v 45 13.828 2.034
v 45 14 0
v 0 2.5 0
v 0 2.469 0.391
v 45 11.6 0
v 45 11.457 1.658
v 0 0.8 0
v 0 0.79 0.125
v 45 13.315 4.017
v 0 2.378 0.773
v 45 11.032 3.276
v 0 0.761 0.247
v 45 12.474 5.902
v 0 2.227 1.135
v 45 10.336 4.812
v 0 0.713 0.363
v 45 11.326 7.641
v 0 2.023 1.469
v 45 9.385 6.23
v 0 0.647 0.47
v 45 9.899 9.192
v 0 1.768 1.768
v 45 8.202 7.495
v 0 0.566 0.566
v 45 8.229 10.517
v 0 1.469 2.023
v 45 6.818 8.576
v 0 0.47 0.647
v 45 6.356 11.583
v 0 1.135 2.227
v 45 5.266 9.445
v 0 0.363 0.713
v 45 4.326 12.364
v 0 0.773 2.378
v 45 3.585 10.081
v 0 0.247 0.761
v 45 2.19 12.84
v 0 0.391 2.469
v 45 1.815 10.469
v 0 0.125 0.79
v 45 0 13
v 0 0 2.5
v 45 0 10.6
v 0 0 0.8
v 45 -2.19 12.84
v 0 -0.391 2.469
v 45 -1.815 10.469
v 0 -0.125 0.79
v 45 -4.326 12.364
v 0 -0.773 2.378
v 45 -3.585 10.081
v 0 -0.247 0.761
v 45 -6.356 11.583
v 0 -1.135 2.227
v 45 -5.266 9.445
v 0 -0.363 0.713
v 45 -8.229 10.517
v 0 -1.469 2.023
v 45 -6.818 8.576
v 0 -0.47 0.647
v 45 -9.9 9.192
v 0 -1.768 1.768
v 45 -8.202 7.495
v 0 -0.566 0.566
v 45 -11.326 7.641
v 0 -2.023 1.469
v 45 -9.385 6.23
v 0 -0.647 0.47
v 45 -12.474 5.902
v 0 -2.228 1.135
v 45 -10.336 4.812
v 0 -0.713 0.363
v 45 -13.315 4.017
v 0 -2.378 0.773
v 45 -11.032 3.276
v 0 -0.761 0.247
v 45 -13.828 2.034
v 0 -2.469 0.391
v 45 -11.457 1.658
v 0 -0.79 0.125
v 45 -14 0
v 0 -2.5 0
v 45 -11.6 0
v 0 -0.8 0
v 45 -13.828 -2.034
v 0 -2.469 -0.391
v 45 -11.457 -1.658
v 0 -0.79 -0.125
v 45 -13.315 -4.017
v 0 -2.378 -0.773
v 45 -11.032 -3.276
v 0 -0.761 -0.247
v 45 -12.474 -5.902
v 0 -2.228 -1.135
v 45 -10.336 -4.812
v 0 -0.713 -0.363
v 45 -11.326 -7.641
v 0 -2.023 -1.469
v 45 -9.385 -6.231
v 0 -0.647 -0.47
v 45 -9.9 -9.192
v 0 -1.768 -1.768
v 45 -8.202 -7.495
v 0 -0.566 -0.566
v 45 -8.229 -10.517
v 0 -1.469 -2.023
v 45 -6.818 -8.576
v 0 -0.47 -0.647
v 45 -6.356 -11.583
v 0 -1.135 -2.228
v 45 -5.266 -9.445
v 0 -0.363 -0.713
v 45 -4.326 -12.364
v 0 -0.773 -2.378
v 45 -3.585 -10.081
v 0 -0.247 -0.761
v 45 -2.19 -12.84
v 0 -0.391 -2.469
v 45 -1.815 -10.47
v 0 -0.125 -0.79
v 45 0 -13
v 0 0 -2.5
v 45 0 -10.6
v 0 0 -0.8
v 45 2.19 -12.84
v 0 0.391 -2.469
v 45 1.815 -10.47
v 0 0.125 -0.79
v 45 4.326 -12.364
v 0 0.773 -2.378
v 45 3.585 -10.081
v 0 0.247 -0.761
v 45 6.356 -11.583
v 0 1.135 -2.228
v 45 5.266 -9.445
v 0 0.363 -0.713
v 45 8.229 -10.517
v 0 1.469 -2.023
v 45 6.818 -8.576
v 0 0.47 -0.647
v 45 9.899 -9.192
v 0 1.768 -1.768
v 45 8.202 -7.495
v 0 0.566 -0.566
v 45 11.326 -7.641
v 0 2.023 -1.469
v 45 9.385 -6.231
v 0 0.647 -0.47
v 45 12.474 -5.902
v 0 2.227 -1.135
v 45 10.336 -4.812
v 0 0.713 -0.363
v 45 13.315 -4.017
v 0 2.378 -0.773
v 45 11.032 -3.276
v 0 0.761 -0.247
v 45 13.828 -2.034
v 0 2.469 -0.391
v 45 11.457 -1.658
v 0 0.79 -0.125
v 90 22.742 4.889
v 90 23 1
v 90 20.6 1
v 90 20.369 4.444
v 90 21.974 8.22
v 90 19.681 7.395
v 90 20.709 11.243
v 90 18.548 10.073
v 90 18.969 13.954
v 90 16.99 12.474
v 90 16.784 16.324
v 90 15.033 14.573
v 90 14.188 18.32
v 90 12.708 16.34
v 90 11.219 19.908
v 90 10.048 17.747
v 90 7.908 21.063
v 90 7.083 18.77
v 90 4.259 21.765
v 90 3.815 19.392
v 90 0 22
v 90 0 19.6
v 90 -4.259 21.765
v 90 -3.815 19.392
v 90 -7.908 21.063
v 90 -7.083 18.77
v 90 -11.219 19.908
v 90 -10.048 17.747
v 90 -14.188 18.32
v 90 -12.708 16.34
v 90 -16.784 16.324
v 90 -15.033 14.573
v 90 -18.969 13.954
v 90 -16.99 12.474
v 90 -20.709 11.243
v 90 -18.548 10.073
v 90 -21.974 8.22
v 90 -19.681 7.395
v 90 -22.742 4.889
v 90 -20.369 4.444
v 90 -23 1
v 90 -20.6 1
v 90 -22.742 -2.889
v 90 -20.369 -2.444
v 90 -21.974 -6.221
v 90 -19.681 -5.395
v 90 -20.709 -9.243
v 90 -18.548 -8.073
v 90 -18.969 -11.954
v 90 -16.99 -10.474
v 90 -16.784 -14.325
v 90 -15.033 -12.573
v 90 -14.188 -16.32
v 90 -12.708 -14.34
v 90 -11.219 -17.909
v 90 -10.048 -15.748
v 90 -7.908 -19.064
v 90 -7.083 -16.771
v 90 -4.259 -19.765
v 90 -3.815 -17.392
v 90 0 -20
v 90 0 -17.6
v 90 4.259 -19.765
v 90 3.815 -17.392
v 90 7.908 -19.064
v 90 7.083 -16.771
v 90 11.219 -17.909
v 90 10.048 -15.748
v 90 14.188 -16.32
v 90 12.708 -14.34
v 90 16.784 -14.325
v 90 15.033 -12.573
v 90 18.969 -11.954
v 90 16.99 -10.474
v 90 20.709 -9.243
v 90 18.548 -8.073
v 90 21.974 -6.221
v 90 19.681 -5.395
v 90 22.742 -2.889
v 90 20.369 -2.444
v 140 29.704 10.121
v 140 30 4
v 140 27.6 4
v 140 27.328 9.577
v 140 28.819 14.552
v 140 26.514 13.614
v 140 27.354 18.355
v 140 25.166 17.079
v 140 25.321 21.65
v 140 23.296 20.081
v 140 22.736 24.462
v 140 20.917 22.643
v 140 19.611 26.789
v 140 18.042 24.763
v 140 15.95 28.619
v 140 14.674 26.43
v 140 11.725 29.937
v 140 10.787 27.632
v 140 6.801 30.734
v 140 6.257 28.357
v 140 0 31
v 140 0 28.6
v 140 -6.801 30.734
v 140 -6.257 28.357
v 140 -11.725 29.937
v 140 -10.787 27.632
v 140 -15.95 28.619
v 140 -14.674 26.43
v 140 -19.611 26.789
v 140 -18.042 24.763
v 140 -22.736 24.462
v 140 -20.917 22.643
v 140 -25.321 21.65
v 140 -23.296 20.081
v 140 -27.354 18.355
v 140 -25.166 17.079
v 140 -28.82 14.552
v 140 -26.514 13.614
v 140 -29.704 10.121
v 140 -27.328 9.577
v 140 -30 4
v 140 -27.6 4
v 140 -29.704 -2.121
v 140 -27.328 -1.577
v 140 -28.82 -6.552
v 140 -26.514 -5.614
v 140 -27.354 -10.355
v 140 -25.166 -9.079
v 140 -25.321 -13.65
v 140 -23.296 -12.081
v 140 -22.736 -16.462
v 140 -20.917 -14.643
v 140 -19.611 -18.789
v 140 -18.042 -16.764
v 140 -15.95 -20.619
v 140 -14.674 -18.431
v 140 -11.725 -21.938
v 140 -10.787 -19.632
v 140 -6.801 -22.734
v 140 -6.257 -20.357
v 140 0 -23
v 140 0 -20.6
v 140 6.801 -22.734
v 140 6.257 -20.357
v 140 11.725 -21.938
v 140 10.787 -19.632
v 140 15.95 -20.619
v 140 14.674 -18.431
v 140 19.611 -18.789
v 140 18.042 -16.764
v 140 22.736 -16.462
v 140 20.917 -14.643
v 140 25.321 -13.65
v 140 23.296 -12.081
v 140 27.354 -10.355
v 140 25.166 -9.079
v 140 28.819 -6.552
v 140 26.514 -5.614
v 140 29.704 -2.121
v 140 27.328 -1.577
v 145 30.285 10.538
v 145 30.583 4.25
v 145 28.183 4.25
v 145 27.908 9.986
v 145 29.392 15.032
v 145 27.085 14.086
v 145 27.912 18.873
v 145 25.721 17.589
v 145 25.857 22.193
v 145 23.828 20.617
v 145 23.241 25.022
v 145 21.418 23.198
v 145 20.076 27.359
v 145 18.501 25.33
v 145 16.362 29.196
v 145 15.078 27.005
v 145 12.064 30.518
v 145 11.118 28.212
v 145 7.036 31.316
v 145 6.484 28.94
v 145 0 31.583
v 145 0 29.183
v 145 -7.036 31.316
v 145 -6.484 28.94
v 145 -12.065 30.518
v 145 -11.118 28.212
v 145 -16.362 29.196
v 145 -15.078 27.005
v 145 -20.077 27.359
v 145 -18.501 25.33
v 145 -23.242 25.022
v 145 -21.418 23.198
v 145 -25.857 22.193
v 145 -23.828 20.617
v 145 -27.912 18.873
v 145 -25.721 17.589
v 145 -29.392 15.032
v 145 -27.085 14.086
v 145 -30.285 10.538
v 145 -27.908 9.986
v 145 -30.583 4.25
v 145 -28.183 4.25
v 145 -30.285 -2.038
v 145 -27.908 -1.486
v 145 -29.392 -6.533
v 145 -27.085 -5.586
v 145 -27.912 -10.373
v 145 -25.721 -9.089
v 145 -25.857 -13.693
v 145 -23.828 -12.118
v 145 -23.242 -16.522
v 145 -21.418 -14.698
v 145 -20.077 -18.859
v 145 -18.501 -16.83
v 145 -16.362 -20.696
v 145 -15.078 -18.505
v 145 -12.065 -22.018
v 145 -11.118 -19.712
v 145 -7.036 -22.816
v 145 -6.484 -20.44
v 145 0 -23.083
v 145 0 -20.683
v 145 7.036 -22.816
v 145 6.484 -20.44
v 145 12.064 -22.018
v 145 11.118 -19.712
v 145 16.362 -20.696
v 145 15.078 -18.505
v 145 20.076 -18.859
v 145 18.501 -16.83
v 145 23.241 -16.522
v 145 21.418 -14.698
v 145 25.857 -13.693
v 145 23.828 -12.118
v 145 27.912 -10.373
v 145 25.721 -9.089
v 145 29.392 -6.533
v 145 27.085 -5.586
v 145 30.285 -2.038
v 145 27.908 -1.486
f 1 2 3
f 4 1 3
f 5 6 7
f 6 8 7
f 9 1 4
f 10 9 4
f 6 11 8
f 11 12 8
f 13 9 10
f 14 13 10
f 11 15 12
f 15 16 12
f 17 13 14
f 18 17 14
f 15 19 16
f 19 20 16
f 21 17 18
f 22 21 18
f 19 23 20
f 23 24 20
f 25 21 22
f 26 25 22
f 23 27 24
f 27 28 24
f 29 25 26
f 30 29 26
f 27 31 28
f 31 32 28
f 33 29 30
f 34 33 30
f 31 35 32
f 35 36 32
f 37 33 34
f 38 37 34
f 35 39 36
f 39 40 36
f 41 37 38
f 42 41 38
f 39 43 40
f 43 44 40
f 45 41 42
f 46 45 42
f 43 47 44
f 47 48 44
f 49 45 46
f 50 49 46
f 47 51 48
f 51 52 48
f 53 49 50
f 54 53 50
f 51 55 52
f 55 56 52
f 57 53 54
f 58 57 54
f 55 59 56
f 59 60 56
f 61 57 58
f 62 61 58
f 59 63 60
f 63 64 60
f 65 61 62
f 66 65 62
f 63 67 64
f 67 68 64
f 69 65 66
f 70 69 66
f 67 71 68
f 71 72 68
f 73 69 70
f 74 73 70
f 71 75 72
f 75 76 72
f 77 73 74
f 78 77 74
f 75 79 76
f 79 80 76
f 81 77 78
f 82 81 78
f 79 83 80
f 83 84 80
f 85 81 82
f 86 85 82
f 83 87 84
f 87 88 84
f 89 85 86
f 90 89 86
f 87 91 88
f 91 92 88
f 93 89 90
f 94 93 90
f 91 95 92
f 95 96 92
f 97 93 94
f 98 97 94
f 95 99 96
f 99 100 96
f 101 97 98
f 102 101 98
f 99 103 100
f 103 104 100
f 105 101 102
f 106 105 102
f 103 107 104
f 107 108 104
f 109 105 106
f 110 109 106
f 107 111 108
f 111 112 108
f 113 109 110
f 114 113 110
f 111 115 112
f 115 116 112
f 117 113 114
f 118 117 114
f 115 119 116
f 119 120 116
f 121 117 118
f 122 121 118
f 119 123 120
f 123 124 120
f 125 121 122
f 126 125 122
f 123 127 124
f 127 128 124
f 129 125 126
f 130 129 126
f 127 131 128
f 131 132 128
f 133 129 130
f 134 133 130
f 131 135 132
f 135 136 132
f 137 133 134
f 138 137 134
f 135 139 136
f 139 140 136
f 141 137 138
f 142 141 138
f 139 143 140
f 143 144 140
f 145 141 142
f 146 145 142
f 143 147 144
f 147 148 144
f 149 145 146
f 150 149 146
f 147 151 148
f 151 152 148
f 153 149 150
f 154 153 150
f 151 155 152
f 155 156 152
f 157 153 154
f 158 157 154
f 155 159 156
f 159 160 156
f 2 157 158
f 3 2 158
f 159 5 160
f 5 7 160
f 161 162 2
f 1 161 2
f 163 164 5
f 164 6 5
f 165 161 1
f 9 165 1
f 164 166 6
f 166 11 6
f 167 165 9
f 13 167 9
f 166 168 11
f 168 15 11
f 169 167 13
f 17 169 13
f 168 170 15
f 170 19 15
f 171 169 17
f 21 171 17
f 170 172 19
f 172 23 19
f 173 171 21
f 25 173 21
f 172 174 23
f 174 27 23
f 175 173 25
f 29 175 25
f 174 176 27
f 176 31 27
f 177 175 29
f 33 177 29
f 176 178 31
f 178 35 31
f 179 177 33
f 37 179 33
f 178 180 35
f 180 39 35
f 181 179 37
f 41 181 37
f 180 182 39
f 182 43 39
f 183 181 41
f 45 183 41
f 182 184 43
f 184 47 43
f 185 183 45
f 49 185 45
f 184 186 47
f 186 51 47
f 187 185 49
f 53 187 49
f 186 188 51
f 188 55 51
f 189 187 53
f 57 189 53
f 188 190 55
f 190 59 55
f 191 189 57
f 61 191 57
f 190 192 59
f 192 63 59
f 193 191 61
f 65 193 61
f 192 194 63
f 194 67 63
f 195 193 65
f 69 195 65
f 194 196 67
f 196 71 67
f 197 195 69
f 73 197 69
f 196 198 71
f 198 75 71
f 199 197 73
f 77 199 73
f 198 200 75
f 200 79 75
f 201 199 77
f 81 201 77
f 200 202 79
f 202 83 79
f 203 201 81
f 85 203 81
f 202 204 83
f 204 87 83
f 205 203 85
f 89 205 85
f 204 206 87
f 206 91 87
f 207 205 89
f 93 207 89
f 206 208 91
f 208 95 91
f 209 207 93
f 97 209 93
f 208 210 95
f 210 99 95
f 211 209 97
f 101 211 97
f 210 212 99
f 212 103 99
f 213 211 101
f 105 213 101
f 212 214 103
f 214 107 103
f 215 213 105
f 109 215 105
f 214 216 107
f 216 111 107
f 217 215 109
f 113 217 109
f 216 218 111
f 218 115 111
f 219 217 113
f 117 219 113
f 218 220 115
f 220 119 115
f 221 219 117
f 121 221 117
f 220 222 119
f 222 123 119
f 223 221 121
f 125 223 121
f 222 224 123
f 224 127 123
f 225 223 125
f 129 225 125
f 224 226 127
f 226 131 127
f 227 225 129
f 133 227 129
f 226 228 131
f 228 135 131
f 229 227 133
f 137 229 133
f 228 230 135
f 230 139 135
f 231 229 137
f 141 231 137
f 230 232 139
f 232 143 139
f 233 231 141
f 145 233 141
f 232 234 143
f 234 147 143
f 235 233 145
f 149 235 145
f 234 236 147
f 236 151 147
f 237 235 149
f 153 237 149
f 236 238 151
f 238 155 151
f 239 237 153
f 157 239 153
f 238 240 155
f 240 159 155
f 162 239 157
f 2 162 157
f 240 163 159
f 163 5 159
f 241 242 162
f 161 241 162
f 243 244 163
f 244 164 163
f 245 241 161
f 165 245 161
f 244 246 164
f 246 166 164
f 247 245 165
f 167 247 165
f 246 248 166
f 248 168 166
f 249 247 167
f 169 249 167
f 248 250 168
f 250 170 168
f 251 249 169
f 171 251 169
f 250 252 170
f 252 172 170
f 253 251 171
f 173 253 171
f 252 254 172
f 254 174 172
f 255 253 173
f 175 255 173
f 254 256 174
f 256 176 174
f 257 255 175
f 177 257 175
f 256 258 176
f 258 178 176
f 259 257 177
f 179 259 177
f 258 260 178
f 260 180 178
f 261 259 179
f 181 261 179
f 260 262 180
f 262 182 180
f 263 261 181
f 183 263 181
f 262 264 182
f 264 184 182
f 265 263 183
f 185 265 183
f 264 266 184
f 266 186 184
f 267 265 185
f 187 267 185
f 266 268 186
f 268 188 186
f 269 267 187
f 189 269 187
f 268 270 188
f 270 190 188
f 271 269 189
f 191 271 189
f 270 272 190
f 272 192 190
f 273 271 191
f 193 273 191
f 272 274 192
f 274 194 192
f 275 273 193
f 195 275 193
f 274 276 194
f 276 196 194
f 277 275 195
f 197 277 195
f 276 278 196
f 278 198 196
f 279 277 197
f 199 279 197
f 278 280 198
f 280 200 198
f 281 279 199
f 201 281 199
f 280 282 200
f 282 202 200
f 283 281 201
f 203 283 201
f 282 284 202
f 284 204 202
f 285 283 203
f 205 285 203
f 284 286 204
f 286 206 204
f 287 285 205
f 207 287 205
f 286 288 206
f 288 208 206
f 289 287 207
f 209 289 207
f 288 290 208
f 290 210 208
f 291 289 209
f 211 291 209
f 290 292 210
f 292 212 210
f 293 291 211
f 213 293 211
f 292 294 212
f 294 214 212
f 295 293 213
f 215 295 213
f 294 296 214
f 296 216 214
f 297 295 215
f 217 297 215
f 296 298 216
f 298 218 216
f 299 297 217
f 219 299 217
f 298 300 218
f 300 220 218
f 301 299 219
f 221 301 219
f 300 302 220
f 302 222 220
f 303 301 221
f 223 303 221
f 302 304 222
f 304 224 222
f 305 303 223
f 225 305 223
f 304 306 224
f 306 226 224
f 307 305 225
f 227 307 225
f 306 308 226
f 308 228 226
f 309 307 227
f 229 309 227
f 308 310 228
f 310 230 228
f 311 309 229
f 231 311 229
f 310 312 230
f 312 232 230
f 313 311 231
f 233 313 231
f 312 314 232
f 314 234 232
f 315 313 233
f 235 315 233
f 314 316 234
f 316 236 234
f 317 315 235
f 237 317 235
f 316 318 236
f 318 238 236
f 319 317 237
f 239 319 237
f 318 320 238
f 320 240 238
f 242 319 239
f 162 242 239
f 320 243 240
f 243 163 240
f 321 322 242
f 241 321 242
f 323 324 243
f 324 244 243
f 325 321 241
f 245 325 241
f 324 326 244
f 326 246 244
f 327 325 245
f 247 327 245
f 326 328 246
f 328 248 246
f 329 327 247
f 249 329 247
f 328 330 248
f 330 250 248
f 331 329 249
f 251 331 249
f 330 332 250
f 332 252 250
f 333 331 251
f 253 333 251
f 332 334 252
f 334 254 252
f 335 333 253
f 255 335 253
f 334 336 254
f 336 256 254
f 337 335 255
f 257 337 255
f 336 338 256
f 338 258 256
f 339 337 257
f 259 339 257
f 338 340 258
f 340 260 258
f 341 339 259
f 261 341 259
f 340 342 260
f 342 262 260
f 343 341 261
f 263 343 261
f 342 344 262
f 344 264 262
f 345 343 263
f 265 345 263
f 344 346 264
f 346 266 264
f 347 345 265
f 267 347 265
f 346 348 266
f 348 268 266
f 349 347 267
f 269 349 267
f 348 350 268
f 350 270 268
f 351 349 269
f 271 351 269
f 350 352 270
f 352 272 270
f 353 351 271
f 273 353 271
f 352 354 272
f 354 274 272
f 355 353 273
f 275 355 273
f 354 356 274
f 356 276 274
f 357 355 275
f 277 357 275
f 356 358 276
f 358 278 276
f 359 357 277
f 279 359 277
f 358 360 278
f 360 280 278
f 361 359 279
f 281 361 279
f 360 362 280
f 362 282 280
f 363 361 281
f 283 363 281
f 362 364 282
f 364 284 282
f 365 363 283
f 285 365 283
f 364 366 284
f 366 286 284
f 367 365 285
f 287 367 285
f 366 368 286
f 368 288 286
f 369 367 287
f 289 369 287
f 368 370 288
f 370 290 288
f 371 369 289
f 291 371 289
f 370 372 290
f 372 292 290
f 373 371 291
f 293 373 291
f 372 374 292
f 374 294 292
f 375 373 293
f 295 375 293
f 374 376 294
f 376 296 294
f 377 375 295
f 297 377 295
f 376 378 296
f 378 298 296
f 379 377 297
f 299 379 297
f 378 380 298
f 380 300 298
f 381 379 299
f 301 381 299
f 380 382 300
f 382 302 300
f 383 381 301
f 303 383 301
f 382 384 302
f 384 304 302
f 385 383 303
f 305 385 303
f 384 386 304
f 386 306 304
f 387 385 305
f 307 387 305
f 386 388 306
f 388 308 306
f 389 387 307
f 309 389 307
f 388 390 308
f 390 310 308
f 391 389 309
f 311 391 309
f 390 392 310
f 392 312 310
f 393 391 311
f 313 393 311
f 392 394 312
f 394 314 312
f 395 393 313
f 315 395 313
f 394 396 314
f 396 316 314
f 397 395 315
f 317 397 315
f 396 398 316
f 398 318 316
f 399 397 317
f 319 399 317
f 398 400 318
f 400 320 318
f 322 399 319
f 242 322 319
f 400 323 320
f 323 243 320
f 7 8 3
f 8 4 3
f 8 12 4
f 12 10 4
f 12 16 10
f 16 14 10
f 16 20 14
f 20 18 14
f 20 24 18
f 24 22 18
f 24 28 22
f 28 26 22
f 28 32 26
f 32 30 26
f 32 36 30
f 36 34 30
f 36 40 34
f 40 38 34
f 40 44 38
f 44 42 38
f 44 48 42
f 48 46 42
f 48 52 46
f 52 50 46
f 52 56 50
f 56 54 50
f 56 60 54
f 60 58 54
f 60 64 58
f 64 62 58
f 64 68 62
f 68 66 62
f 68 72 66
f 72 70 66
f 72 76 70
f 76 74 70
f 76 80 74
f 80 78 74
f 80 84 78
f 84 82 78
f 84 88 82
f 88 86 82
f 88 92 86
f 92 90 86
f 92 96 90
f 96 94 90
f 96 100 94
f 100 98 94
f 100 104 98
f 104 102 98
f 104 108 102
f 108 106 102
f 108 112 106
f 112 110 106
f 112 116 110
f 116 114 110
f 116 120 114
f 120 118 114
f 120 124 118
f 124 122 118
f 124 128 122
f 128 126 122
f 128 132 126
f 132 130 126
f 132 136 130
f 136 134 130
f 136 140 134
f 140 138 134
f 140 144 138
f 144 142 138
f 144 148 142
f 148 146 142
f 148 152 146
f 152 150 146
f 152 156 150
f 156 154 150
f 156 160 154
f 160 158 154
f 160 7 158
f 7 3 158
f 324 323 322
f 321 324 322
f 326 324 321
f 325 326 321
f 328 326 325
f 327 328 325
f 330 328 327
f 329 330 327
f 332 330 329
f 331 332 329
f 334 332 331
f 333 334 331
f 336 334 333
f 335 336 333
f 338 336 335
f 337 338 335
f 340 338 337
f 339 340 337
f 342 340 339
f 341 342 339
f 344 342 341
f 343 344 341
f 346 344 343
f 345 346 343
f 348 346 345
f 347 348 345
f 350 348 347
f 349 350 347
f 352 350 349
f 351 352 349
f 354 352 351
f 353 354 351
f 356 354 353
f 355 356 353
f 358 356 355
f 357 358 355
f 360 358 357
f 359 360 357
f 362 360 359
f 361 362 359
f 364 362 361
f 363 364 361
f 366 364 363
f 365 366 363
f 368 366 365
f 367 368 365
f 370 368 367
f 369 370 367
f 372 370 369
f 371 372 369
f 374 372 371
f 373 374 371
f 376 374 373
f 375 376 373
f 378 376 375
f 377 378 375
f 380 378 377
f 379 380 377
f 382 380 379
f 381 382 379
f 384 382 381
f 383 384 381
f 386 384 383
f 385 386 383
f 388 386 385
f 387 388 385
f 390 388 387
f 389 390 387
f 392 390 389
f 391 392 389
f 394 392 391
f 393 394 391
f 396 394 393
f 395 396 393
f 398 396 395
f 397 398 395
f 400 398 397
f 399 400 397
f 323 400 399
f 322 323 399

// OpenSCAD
polyhedron(points=[[0.0, 2.5, 0.0], [0.0, 2.469221, 0.391086], [0.0, 2.377641, 0.772542], [0.0, 2.227516, 1.134976], [0.0, 2.022542, 1.469463], [0.0, 1.767767, 1.767767], [0.0, 1.469463, 2.022542], [0.0, 1.134976, 2.227516], [0.0, 0.772542, 2.377641], [0.0, 0.391086, 2.469221], [0.0, 0.0, 2.5], [0.0, -0.391086, 2.469221], [0.0, -0.772542, 2.377641], [0.0, -1.134976, 2.227516], [0.0, -1.469463, 2.022542], [0.0, -1.767767, 1.767767], [0.0, -2.022542, 1.469463], [0.0, -2.227516, 1.134976], [0.0, -2.377641, 0.772542], [0.0, -2.469221, 0.391086], [0.0, -2.5, 0.0], [0.0, -2.469221, -0.391086], [0.0, -2.377641, -0.772542], [0.0, -2.227516, -1.134976], [0.0, -2.022542, -1.469463], [0.0, -1.767767, -1.767767], [0.0, -1.469463, -2.022542], [0.0, -1.134976, -2.227516], [0.0, -0.772542, -2.377641], [0.0, -0.391086, -2.469221], [0.0, -0.0, -2.5], [0.0, 0.391086, -2.469221], [0.0, 0.772542, -2.377641], [0.0, 1.134976, -2.227516], [0.0, 1.469463, -2.022542], [0.0, 1.767767, -1.767767], [0.0, 2.022542, -1.469463], [0.0, 2.227516, -1.134976], [0.0, 2.377641, -0.772542], [0.0, 2.469221, -0.391086], [0.0, 0.8, 0.0], [0.0, 0.790151, 0.125148], [0.0, 0.760845, 0.247214], [0.0, 0.712805, 0.363192], [0.0, 0.647214, 0.470228], [0.0, 0.565685, 0.565685], [0.0, 0.470228, 0.647214], [0.0, 0.363192, 0.712805], [0.0, 0.247214, 0.760845], [0.0, 0.125148, 0.790151], [0.0, 0.0, 0.8], [0.0, -0.125148, 0.790151], [0.0, -0.247214, 0.760845], [0.0, -0.363192, 0.712805], [0.0, -0.470228, 0.647214], [0.0, -0.565685, 0.565685], [0.0, -0.647214, 0.470228], [0.0, -0.712805, 0.363192], [0.0, -0.760845, 0.247214], [0.0, -0.790151, 0.125148], [0.0, -0.8, 0.0], [0.0, -0.790151, -0.125148], [0.0, -0.760845, -0.247214], [0.0, -0.712805, -0.363192], [0.0, -0.647214, -0.470228], [0.0, -0.565685, -0.565685], [0.0, -0.470228, -0.647214], [0.0, -0.363192, -0.712805], [0.0, -0.247214, -0.760845], [0.0, -0.125148, -0.790151], [0.0, -0.0, -0.8], [0.0, 0.125148, -0.790151], [0.0, 0.247214, -0.760845], [0.0, 0.363192, -0.712805], [0.0, 0.470228, -0.647214], [0.0, 0.565685, -0.565685], [0.0, 0.647214, -0.470228], [0.0, 0.712805, -0.363192], [0.0, 0.760845, -0.247214], [0.0, 0.790151, -0.125148], [45.0, 14.0, 0.0], [45.0, 13.827637, 2.033648], [45.0, 13.314791, 4.017221], [45.0, 12.474091, 5.901876], [45.0, 11.326238, 7.641208], [45.0, 9.899495, 9.192388], [45.0, 8.228994, 10.517221], [45.0, 6.355867, 11.583085], [45.0, 4.326238, 12.363735], [45.0, 2.190083, 12.839948], [45.0, 0.0, 13.0], [45.0, -2.190083, 12.839948], [45.0, -4.326238, 12.363735], [45.0, -6.355867, 11.583085], [45.0, -8.228994, 10.517221], [45.0, -9.899495, 9.192388], [45.0, -11.326238, 7.641208], [45.0, -12.474091, 5.901876], [45.0, -13.314791, 4.017221], [45.0, -13.827637, 2.033648], [45.0, -14.0, 0.0], [45.0, -13.827637, -2.033648], [45.0, -13.314791, -4.017221], [45.0, -12.474091, -5.901876], [45.0, -11.326238, -7.641208], [45.0, -9.899495, -9.192388], [45.0, -8.228994, -10.517221], [45.0, -6.355867, -11.583085], [45.0, -4.326238, -12.363735], [45.0, -2.190083, -12.839948], [45.0, -0.0, -13.0], [45.0, 2.190083, -12.839948], [45.0, 4.326238, -12.363735], [45.0, 6.355867, -11.583085], [45.0, 8.228994, -10.517221], [45.0, 9.899495, -9.192388], [45.0, 11.326238, -7.641208], [45.0, 12.474091, -5.901876], [45.0, 13.314791, -4.017221], [45.0, 13.827637, -2.033648], [45.0, 11.6, 0.0], [45.0, 11.457185, 1.658205], [45.0, 11.032256, 3.27558], [45.0, 10.335676, 4.812299], [45.0, 9.384597, 6.230524], [45.0, 8.202439, 7.495332], [45.0, 6.818309, 8.57558], [45.0, 5.26629, 9.444669], [45.0, 3.584597, 10.081199], [45.0, 1.81464, 10.469496], [45.0, 0.0, 10.6], [45.0, -1.81464, 10.469496], [45.0, -3.584597, 10.081199], [45.0, -5.26629, 9.444669], [45.0, -6.818309, 8.57558], [45.0, -8.202439, 7.495332], [45.0, -9.384597, 6.230524], [45.0, -10.335676, 4.812299], [45.0, -11.032256, 3.27558], [45.0, -11.457185, 1.658205], [45.0, -11.6, 0.0], [45.0, -11.457185, -1.658205], [45.0, -11.032256, -3.27558], [45.0, -10.335676, -4.812299], [45.0, -9.384597, -6.230524], [45.0, -8.202439, -7.495332], [45.0, -6.818309, -8.57558], [45.0, -5.26629, -9.444669], [45.0, -3.584597, -10.081199], [45.0, -1.81464, -10.469496], [45.0, -0.0, -10.6], [45.0, 1.81464, -10.469496], [45.0, 3.584597, -10.081199], [45.0, 5.26629, -9.444669], [45.0, 6.818309, -8.57558], [45.0, 8.202439, -7.495332], [45.0, 9.384597, -6.230524], [45.0, 10.335676, -4.812299], [45.0, 11.032256, -3.27558], [45.0, 11.457185, -1.658205], [90.0, 23.0, 1.0], [90.0, 22.74243, 4.888609], [90.0, 21.974318, 8.220494], [90.0, 20.70928, 11.243388], [90.0, 18.969373, 13.954424], [90.0, 16.784021, 16.324541], [90.0, 14.188178, 18.319862], [90.0, 11.218949, 19.908473], [90.0, 7.90816, 21.063508], [90.0, 4.258952, 21.764827], [90.0, 0.0, 22.0], [90.0, -4.258952, 21.764827], [90.0, -7.90816, 21.063508], [90.0, -11.218949, 19.908473], [90.0, -14.188178, 18.319862], [90.0, -16.784021, 16.324541], [90.0, -18.969373, 13.954424], [90.0, -20.70928, 11.243388], [90.0, -21.974318, 8.220494], [90.0, -22.74243, 4.888609], [90.0, -23.0, 1.0], [90.0, -22.74243, -2.888609], [90.0, -21.974318, -6.220494], [90.0, -20.70928, -9.243388], [90.0, -18.969373, -11.954424], [90.0, -16.784021, -14.324541], [90.0, -14.188178, -16.319862], [90.0, -11.218949, -17.908473], [90.0, -7.90816, -19.063508], [90.0, -4.258952, -19.764827], [90.0, -0.0, -20.0], [90.0, 4.258952, -19.764827], [90.0, 7.90816, -19.063508], [90.0, 11.218949, -17.908473], [90.0, 14.188178, -16.319862], [90.0, 16.784021, -14.324541], [90.0, 18.969373, -11.954424], [90.0, 20.70928, -9.243388], [90.0, 21.974318, -6.220494], [90.0, 22.74243, -2.888609], [90.0, 20.6, 1.0], [90.0, 20.369307, 4.444196], [90.0, 19.681346, 7.395294], [90.0, 18.548312, 10.072715], [90.0, 16.98996, 12.473918], [90.0, 15.032645, 14.573165], [90.0, 12.707673, 16.340449], [90.0, 10.048276, 17.747505], [90.0, 7.082961, 18.770535], [90.0, 3.81454, 19.391704], [90.0, 0.0, 19.6], [90.0, -3.81454, 19.391704], [90.0, -7.082961, 18.770535], [90.0, -10.048276, 17.747505], [90.0, -12.707673, 16.340449], [90.0, -15.032645, 14.573165], [90.0, -16.98996, 12.473918], [90.0, -18.548312, 10.072715], [90.0, -19.681346, 7.395294], [90.0, -20.369307, 4.444196], [90.0, -20.6, 1.0], [90.0, -20.369307, -2.444196], [90.0, -19.681346, -5.395294], [90.0, -18.548312, -8.072715], [90.0, -16.98996, -10.473918], [90.0, -15.032645, -12.573165], [90.0, -12.707673, -14.340449], [90.0, -10.048276, -15.747505], [90.0, -7.082961, -16.770535], [90.0, -3.81454, -17.391704], [90.0, -0.0, -17.6], [90.0, 3.81454, -17.391704], [90.0, 7.082961, -16.770535], [90.0, 10.048276, -15.747505], [90.0, 12.707673, -14.340449], [90.0, 15.032645, -12.573165], [90.0, 16.98996, -10.473918], [90.0, 18.548312, -8.072715], [90.0, 19.681346, -5.395294], [90.0, 20.369307, -2.444196], [140.0, 30.0, 4.0], [140.0, 29.704155, 10.121103], [140.0, 28.819492, 14.552361], [140.0, 27.354322, 18.354933], [140.0, 25.32138, 21.649756], [140.0, 22.735748, 24.462174], [140.0, 19.61084, 26.789242], [140.0, 15.949926, 28.61889], [140.0, 11.724846, 29.937542], [140.0, 6.801226, 30.733739], [140.0, 0.0, 31.0], [140.0, -6.801226, 30.733739], [140.0, -11.724846, 29.937542], [140.0, -15.949926, 28.61889], [140.0, -19.61084, 26.789242], [140.0, -22.735748, 24.462174], [140.0, -25.32138, 21.649756], [140.0, -27.354322, 18.354933], [140.0, -28.819492, 14.552361], [140.0, -29.704155, 10.121103], [140.0, -30.0, 4.0], [140.0, -29.704155, -2.121103], [140.0, -28.819492, -6.552361], [140.0, -27.354322, -10.354933], [140.0, -25.32138, -13.649756], [140.0, -22.735748, -16.462174], [140.0, -19.61084, -18.789242], [140.0, -15.949926, -20.61889], [140.0, -11.724846, -21.937542], [140.0, -6.801226, -22.733739], [140.0, -0.0, -23.0], [140.0, 6.801226, -22.733739], [140.0, 11.724846, -21.937542], [140.0, 15.949926, -20.61889], [140.0, 19.61084, -18.789242], [140.0, 22.735748, -16.462174], [140.0, 25.32138, -13.649756], [140.0, 27.354322, -10.354933], [140.0, 28.819492, -6.552361], [140.0, 29.704155, -2.121103], [140.0, 27.6, 4.0], [140.0, 27.327822, 9.577005], [140.0, 26.513932, 13.614374], [140.0, 25.165977, 17.078939], [140.0, 23.29567, 20.080889], [140.0, 20.916889, 22.643314], [140.0, 18.041973, 24.763532], [140.0, 14.673932, 26.430544], [140.0, 10.786858, 27.631983], [140.0, 6.257128, 28.357407], [140.0, 0.0, 28.6], [140.0, -6.257128, 28.357407], [140.0, -10.786858, 27.631983], [140.0, -14.673932, 26.430544], [140.0, -18.041973, 24.763532], [140.0, -20.916889, 22.643314], [140.0, -23.29567, 20.080889], [140.0, -25.165977, 17.078939], [140.0, -26.513932, 13.614374], [140.0, -27.327822, 9.577005], [140.0, -27.6, 4.0], [140.0, -27.327822, -1.577005], [140.0, -26.513932, -5.614374], [140.0, -25.165977, -9.078939], [140.0, -23.29567, -12.080889], [140.0, -20.916889, -14.643314], [140.0, -18.041973, -16.763532], [140.0, -14.673932, -18.430544], [140.0, -10.786858, -19.631983], [140.0, -6.257128, -20.357407], [140.0, -0.0, -20.6], [140.0, 6.257128, -20.357407], [140.0, 10.786858, -19.631983], [140.0, 14.673932, -18.430544], [140.0, 18.041973, -16.763532], [140.0, 20.916889, -14.643314], [140.0, 23.29567, -12.080889], [140.0, 25.165977, -9.078939], [140.0, 26.513932, -5.614374], [140.0, 27.327822, -1.577005], [145.0, 30.583333, 4.25], [145.0, 30.284707, 10.538399], [145.0, 29.391551, 15.032469], [145.0, 27.911714, 18.873336], [145.0, 25.85711, 22.193019], [145.0, 23.241546, 25.021736], [145.0, 20.076488, 27.359352], [145.0, 16.362087, 29.195619], [145.0, 12.064531, 30.518198], [145.0, 7.036105, 31.316441], [145.0, 0.0, 31.583333], [145.0, -7.036105, 31.316441], [145.0, -12.064531, 30.518198], [145.0, -16.362087, 29.195619], [145.0, -20.076488, 27.359352], [145.0, -23.241546, 25.021736], [145.0, -25.85711, 22.193019], [145.0, -27.911714, 18.873336], [145.0, -29.391551, 15.032469], [145.0, -30.284707, 10.538399], [145.0, -30.583333, 4.25], [145.0, -30.284707, -2.038399], [145.0, -29.391551, -6.532469], [145.0, -27.911714, -10.373336], [145.0, -25.85711, -13.693019], [145.0, -23.241546, -16.521736], [145.0, -20.076488, -18.859352], [145.0, -16.362087, -20.695619], [145.0, -12.064531, -22.018198], [145.0, -7.036105, -22.816441], [145.0, -0.0, -23.083333], [145.0, 7.036105, -22.816441], [145.0, 12.064531, -22.018198], [145.0, 16.362087, -20.695619], [145.0, 20.076488, -18.859352], [145.0, 23.241546, -16.521736], [145.0, 25.85711, -13.693019], [145.0, 27.911714, -10.373336], [145.0, 29.391551, -6.532469], [145.0, 30.284707, -2.038399], [145.0, 28.183333, 4.25], [145.0, 27.908141, 9.986247], [145.0, 27.085075, 14.085716], [145.0, 25.721367, 17.589336], [145.0, 23.827996, 20.617534], [145.0, 21.417686, 23.197876], [145.0, 18.501003, 25.330238], [145.0, 15.078086, 27.005272], [145.0, 11.117778, 28.211722], [145.0, 6.483953, 28.939875], [145.0, 0.0, 29.183333], [145.0, -6.483953, 28.939875], [145.0, -11.117778, 28.211722], [145.0, -15.078086, 27.005272], [145.0, -18.501003, 25.330238], [145.0, -21.417686, 23.197876], [145.0, -23.827996, 20.617534], [145.0, -25.721367, 17.589336], [145.0, -27.085075, 14.085716], [145.0, -27.908141, 9.986247], [145.0, -28.183333, 4.25], [145.0, -27.908141, -1.486247], [145.0, -27.085075, -5.585716], [145.0, -25.721367, -9.089336], [145.0, -23.827996, -12.117534], [145.0, -21.417686, -14.697876], [145.0, -18.501003, -16.830238], [145.0, -15.078086, -18.505272], [145.0, -11.117778, -19.711722], [145.0, -6.483953, -20.439875], [145.0, -0.0, -20.683333], [145.0, 6.483953, -20.439875], [145.0, 11.117778, -19.711722], [145.0, 15.078086, -18.505272], [145.0, 18.501003, -16.830238], [145.0, 21.417686, -14.697876], [145.0, 23.827996, -12.117534], [145.0, 25.721367, -9.089336], [145.0, 27.085075, -5.585716], [145.0, 27.908141, -1.486247]], faces=[[0, 80, 81], [0, 81, 1], [40, 121, 120], [40, 41, 121], [1, 81, 82], [1, 82, 2], [41, 122, 121], [41, 42, 122], [2, 82, 83], [2, 83, 3], [42, 123, 122], [42, 43, 123], [3, 83, 84], [3, 84, 4], [43, 124, 123], [43, 44, 124], [4, 84, 85], [4, 85, 5], [44, 125, 124], [44, 45, 125], [5, 85, 86], [5, 86, 6], [45, 126, 125], [45, 46, 126], [6, 86, 87], [6, 87, 7], [46, 127, 126], [46, 47, 127], [7, 87, 88], [7, 88, 8], [47, 128, 127], [47, 48, 128], [8, 88, 89], [8, 89, 9], [48, 129, 128], [48, 49, 129], [9, 89, 90], [9, 90, 10], [49, 130, 129], [49, 50, 130], [10, 90, 91], [10, 91, 11], [50, 131, 130], [50, 51, 131], [11, 91, 92], [11, 92, 12], [51, 132, 131], [51, 52, 132], [12, 92, 93], [12, 93, 13], [52, 133, 132], [52, 53, 133], [13, 93, 94], [13, 94, 14], [53, 134, 133], [53, 54, 134], [14, 94, 95], [14, 95, 15], [54, 135, 134], [54, 55, 135], [15, 95, 96], [15, 96, 16], [55, 136, 135], [55, 56, 136], [16, 96, 97], [16, 97, 17], [56, 137, 136], [56, 57, 137], [17, 97, 98], [17, 98, 18], [57, 138, 137], [57, 58, 138], [18, 98, 99], [18, 99, 19], [58, 139, 138], [58, 59, 139], [19, 99, 100], [19, 100, 20], [59, 140, 139], [59, 60, 140], [20, 100, 101], [20, 101, 21], [60, 141, 140], [60, 61, 141], [21, 101, 102], [21, 102, 22], [61, 142, 141], [61, 62, 142], [22, 102, 103], [22, 103, 23], [62, 143, 142], [62, 63, 143], [23, 103, 104], [23, 104, 24], [63, 144, 143], [63, 64, 144], [24, 104, 105], [24, 105, 25], [64, 145, 144], [64, 65, 145], [25, 105, 106], [25, 106, 26], [65, 146, 145], [65, 66, 146], [26, 106, 107], [26, 107, 27], [66, 147, 146], [66, 67, 147], [27, 107, 108], [27, 108, 28], [67, 148, 147], [67, 68, 148], [28, 108, 109], [28, 109, 29], [68, 149, 148], [68, 69, 149], [29, 109, 110], [29, 110, 30], [69, 150, 149], [69, 70, 150], [30, 110, 111], [30, 111, 31], [70, 151, 150], [70, 71, 151], [31, 111, 112], [31, 112, 32], [71, 152, 151], [71, 72, 152], [32, 112, 113], [32, 113, 33], [72, 153, 152], [72, 73, 153], [33, 113, 114], [33, 114, 34], [73, 154, 153], [73, 74, 154], [34, 114, 115], [34, 115, 35], [74, 155, 154], [74, 75, 155], [35, 115, 116], [35, 116, 36], [75, 156, 155], [75, 76, 156], [36, 116, 117], [36, 117, 37], [76, 157, 156], [76, 77, 157], [37, 117, 118], [37, 118, 38], [77, 158, 157], [77, 78, 158], [38, 118, 119], [38, 119, 39], [78, 159, 158], [78, 79, 159], [39, 119, 80], [39, 80, 0], [79, 120, 159], [79, 40, 120], [80, 160, 161], [80, 161, 81], [120, 201, 200], [120, 121, 201], [81, 161, 162], [81, 162, 82], [121, 202, 201], [121, 122, 202], [82, 162, 163], [82, 163, 83], [122, 203, 202], [122, 123, 203], [83, 163, 164], [83, 164, 84], [123, 204, 203], [123, 124, 204], [84, 164, 165], [84, 165, 85], [124, 205, 204], [124, 125, 205], [85, 165, 166], [85, 166, 86], [125, 206, 205], [125, 126, 206], [86, 166, 167], [86, 167, 87], [126, 207, 206], [126, 127, 207], [87, 167, 168], [87, 168, 88], [127, 208, 207], [127, 128, 208], [88, 168, 169], [88, 169, 89], [128, 209, 208], [128, 129, 209], [89, 169, 170], [89, 170, 90], [129, 210, 209], [129, 130, 210], [90, 170, 171], [90, 171, 91], [130, 211, 210], [130, 131, 211], [91, 171, 172], [91, 172, 92], [131, 212, 211], [131, 132, 212], [92, 172, 173], [92, 173, 93], [132, 213, 212], [132, 133, 213], [93, 173, 174], [93, 174, 94], [133, 214, 213], [133, 134, 214], [94, 174, 175], [94, 175, 95], [134, 215, 214], [134, 135, 215], [95, 175, 176], [95, 176, 96], [135, 216, 215], [135, 136, 216], [96, 176, 177], [96, 177, 97], [136, 217, 216], [136, 137, 217], [97, 177, 178], [97, 178, 98], [137, 218, 217], [137, 138, 218], [98, 178, 179], [98, 179, 99], [138, 219, 218], [138, 139, 219], [99, 179, 180], [99, 180, 100], [139, 220, 219], [139, 140, 220], [100, 180, 181], [100, 181, 101], [140, 221, 220], [140, 141, 221], [101, 181, 182], [101, 182, 102], [141, 222, 221], [141, 142, 222], [102, 182, 183], [102, 183, 103], [142, 223, 222], [142, 143, 223], [103, 183, 184], [103, 184, 104], [143, 224, 223], [143, 144, 224], [104, 184, 185], [104, 185, 105], [144, 225, 224], [144, 145, 225], [105, 185, 186], [105, 186, 106], [145, 226, 225], [145, 146, 226], [106, 186, 187], [106, 187, 107], [146, 227, 226], [146, 147, 227], [107, 187, 188], [107, 188, 108], [147, 228, 227], [147, 148, 228], [108, 188, 189], [108, 189, 109], [148, 229, 228], [148, 149, 229], [109, 189, 190], [109, 190, 110], [149, 230, 229], [149, 150, 230], [110, 190, 191], [110, 191, 111], [150, 231, 230], [150, 151, 231], [111, 191, 192], [111, 192, 112], [151, 232, 231], [151, 152, 232], [112, 192, 193], [112, 193, 113], [152, 233, 232], [152, 153, 233], [113, 193, 194], [113, 194, 114], [153, 234, 233], [153, 154, 234], [114, 194, 195], [114, 195, 115], [154, 235, 234], [154, 155, 235], [115, 195, 196], [115, 196, 116], [155, 236, 235], [155, 156, 236], [116, 196, 197], [116, 197, 117], [156, 237, 236], [156, 157, 237], [117, 197, 198], [117, 198, 118], [157, 238, 237], [157, 158, 238], [118, 198, 199], [118, 199, 119], [158, 239, 238], [158, 159, 239], [119, 199, 160], [119, 160, 80], [159, 200, 239], [159, 120, 200], [160, 240, 241], [160, 241, 161], [200, 281, 280], [200, 201, 281], [161, 241, 242], [161, 242, 162], [201, 282, 281], [201, 202, 282], [162, 242, 243], [162, 243, 163], [202, 283, 282], [202, 203, 283], [163, 243, 244], [163, 244, 164], [203, 284, 283], [203, 204, 284], [164, 244, 245], [164, 245, 165], [204, 285, 284], [204, 205, 285], [165, 245, 246], [165, 246, 166], [205, 286, 285], [205, 206, 286], [166, 246, 247], [166, 247, 167], [206, 287, 286], [206, 207, 287], [167, 247, 248], [167, 248, 168], [207, 288, 287], [207, 208, 288], [168, 248, 249], [168, 249, 169], [208, 289, 288], [208, 209, 289], [169, 249, 250], [169, 250, 170], [209, 290, 289], [209, 210, 290], [170, 250, 251], [170, 251, 171], [210, 291, 290], [210, 211, 291], [171, 251, 252], [171, 252, 172], [211, 292, 291], [211, 212, 292], [172, 252, 253], [172, 253, 173], [212, 293, 292], [212, 213, 293], [173, 253, 254], [173, 254, 174], [213, 294, 293], [213, 214, 294], [174, 254, 255], [174, 255, 175], [214, 295, 294], [214, 215, 295], [175, 255, 256], [175, 256, 176], [215, 296, 295], [215, 216, 296], [176, 256, 257], [176, 257, 177], [216, 297, 296], [216, 217, 297], [177, 257, 258], [177, 258, 178], [217, 298, 297], [217, 218, 298], [178, 258, 259], [178, 259, 179], [218, 299, 298], [218, 219, 299], [179, 259, 260], [179, 260, 180], [219, 300, 299], [219, 220, 300], [180, 260, 261], [180, 261, 181], [220, 301, 300], [220, 221, 301], [181, 261, 262], [181, 262, 182], [221, 302, 301], [221, 222, 302], [182, 262, 263], [182, 263, 183], [222, 303, 302], [222, 223, 303], [183, 263, 264], [183, 264, 184], [223, 304, 303], [223, 224, 304], [184, 264, 265], [184, 265, 185], [224, 305, 304], [224, 225, 305], [185, 265, 266], [185, 266, 186], [225, 306, 305], [225, 226, 306], [186, 266, 267], [186, 267, 187], [226, 307, 306], [226, 227, 307], [187, 267, 268], [187, 268, 188], [227, 308, 307], [227, 228, 308], [188, 268, 269], [188, 269, 189], [228, 309, 308], [228, 229, 309], [189, 269, 270], [189, 270, 190], [229, 310, 309], [229, 230, 310], [190, 270, 271], [190, 271, 191], [230, 311, 310], [230, 231, 311], [191, 271, 272], [191, 272, 192], [231, 312, 311], [231, 232, 312], [192, 272, 273], [192, 273, 193], [232, 313, 312], [232, 233, 313], [193, 273, 274], [193, 274, 194], [233, 314, 313], [233, 234, 314], [194, 274, 275], [194, 275, 195], [234, 315, 314], [234, 235, 315], [195, 275, 276], [195, 276, 196], [235, 316, 315], [235, 236, 316], [196, 276, 277], [196, 277, 197], [236, 317, 316], [236, 237, 317], [197, 277, 278], [197, 278, 198], [237, 318, 317], [237, 238, 318], [198, 278, 279], [198, 279, 199], [238, 319, 318], [238, 239, 319], [199, 279, 240], [199, 240, 160], [239, 280, 319], [239, 200, 280], [240, 320, 321], [240, 321, 241], [280, 361, 360], [280, 281, 361], [241, 321, 322], [241, 322, 242], [281, 362, 361], [281, 282, 362], [242, 322, 323], [242, 323, 243], [282, 363, 362], [282, 283, 363], [243, 323, 324], [243, 324, 244], [283, 364, 363], [283, 284, 364], [244, 324, 325], [244, 325, 245], [284, 365, 364], [284, 285, 365], [245, 325, 326], [245, 326, 246], [285, 366, 365], [285, 286, 366], [246, 326, 327], [246, 327, 247], [286, 367, 366], [286, 287, 367], [247, 327, 328], [247, 328, 248], [287, 368, 367], [287, 288, 368], [248, 328, 329], [248, 329, 249], [288, 369, 368], [288, 289, 369], [249, 329, 330], [249, 330, 250], [289, 370, 369], [289, 290, 370], [250, 330, 331], [250, 331, 251], [290, 371, 370], [290, 291, 371], [251, 331, 332], [251, 332, 252], [291, 372, 371], [291, 292, 372], [252, 332, 333], [252, 333, 253], [292, 373, 372], [292, 293, 373], [253, 333, 334], [253, 334, 254], [293, 374, 373], [293, 294, 374], [254, 334, 335], [254, 335, 255], [294, 375, 374], [294, 295, 375], [255, 335, 336], [255, 336, 256], [295, 376, 375], [295, 296, 376], [256, 336, 337], [256, 337, 257], [296, 377, 376], [296, 297, 377], [257, 337, 338], [257, 338, 258], [297, 378, 377], [297, 298, 378], [258, 338, 339], [258, 339, 259], [298, 379, 378], [298, 299, 379], [259, 339, 340], [259, 340, 260], [299, 380, 379], [299, 300, 380], [260, 340, 341], [260, 341, 261], [300, 381, 380], [300, 301, 381], [261, 341, 342], [261, 342, 262], [301, 382, 381], [301, 302, 382], [262, 342, 343], [262, 343, 263], [302, 383, 382], [302, 303, 383], [263, 343, 344], [263, 344, 264], [303, 384, 383], [303, 304, 384], [264, 344, 345], [264, 345, 265], [304, 385, 384], [304, 305, 385], [265, 345, 346], [265, 346, 266], [305, 386, 385], [305, 306, 386], [266, 346, 347], [266, 347, 267], [306, 387, 386], [306, 307, 387], [267, 347, 348], [267, 348, 268], [307, 388, 387], [307, 308, 388], [268, 348, 349], [268, 349, 269], [308, 389, 388], [308, 309, 389], [269, 349, 350], [269, 350, 270], [309, 390, 389], [309, 310, 390], [270, 350, 351], [270, 351, 271], [310, 391, 390], [310, 311, 391], [271, 351, 352], [271, 352, 272], [311, 392, 391], [311, 312, 392], [272, 352, 353], [272, 353, 273], [312, 393, 392], [312, 313, 393], [273, 353, 354], [273, 354, 274], [313, 394, 393], [313, 314, 394], [274, 354, 355], [274, 355, 275], [314, 395, 394], [314, 315, 395], [275, 355, 356], [275, 356, 276], [315, 396, 395], [315, 316, 396], [276, 356, 357], [276, 357, 277], [316, 397, 396], [316, 317, 397], [277, 357, 358], [277, 358, 278], [317, 398, 397], [317, 318, 398], [278, 358, 359], [278, 359, 279], [318, 399, 398], [318, 319, 399], [279, 359, 320], [279, 320, 240], [319, 360, 399], [319, 280, 360], [0, 41, 40], [0, 1, 41], [1, 42, 41], [1, 2, 42], [2, 43, 42], [2, 3, 43], [3, 44, 43], [3, 4, 44], [4, 45, 44], [4, 5, 45], [5, 46, 45], [5, 6, 46], [6, 47, 46], [6, 7, 47], [7, 48, 47], [7, 8, 48], [8, 49, 48], [8, 9, 49], [9, 50, 49], [9, 10, 50], [10, 51, 50], [10, 11, 51], [11, 52, 51], [11, 12, 52], [12, 53, 52], [12, 13, 53], [13, 54, 53], [13, 14, 54], [14, 55, 54], [14, 15, 55], [15, 56, 55], [15, 16, 56], [16, 57, 56], [16, 17, 57], [17, 58, 57], [17, 18, 58], [18, 59, 58], [18, 19, 59], [19, 60, 59], [19, 20, 60], [20, 61, 60], [20, 21, 61], [21, 62, 61], [21, 22, 62], [22, 63, 62], [22, 23, 63], [23, 64, 63], [23, 24, 64], [24, 65, 64], [24, 25, 65], [25, 66, 65], [25, 26, 66], [26, 67, 66], [26, 27, 67], [27, 68, 67], [27, 28, 68], [28, 69, 68], [28, 29, 69], [29, 70, 69], [29, 30, 70], [30, 71, 70], [30, 31, 71], [31, 72, 71], [31, 32, 72], [32, 73, 72], [32, 33, 73], [33, 74, 73], [33, 34, 74], [34, 75, 74], [34, 35, 75], [35, 76, 75], [35, 36, 76], [36, 77, 76], [36, 37, 77], [37, 78, 77], [37, 38, 78], [38, 79, 78], [38, 39, 79], [39, 40, 79], [39, 0, 40], [320, 360, 361], [320, 361, 321], [321, 361, 362], [321, 362, 322], [322, 362, 363], [322, 363, 323], [323, 363, 364], [323, 364, 324], [324, 364, 365], [324, 365, 325], [325, 365, 366], [325, 366, 326], [326, 366, 367], [326, 367, 327], [327, 367, 368], [327, 368, 328], [328, 368, 369], [328, 369, 329], [329, 369, 370], [329, 370, 330], [330, 370, 371], [330, 371, 331], [331, 371, 372], [331, 372, 332], [332, 372, 373], [332, 373, 333], [333, 373, 374], [333, 374, 334], [334, 374, 375], [334, 375, 335], [335, 375, 376], [335, 376, 336], [336, 376, 377], [336, 377, 337], [337, 377, 378], [337, 378, 338], [338, 378, 379], [338, 379, 339], [339, 379, 380], [339, 380, 340], [340, 380, 381], [340, 381, 341], [341, 381, 382], [341, 382, 342], [342, 382, 383], [342, 383, 343], [343, 383, 384], [343, 384, 344], [344, 384, 385], [344, 385, 345], [345, 385, 386], [345, 386, 346], [346, 386, 387], [346, 387, 347], [347, 387, 388], [347, 388, 348], [348, 388, 389], [348, 389, 349], [349, 389, 390], [349, 390, 350], [350, 390, 391], [350, 391, 351], [351, 391, 392], [351, 392, 352], [352, 392, 393], [352, 393, 353], [353, 393, 394], [353, 394, 354], [354, 394, 395], [354, 395, 355], [355, 395, 396], [355, 396, 356], [356, 396, 397], [356, 397, 357], [357, 397, 398], [357, 398, 358], [358, 398, 399], [358, 399, 359], [359, 399, 360], [359, 360, 320]], convexity=30);
